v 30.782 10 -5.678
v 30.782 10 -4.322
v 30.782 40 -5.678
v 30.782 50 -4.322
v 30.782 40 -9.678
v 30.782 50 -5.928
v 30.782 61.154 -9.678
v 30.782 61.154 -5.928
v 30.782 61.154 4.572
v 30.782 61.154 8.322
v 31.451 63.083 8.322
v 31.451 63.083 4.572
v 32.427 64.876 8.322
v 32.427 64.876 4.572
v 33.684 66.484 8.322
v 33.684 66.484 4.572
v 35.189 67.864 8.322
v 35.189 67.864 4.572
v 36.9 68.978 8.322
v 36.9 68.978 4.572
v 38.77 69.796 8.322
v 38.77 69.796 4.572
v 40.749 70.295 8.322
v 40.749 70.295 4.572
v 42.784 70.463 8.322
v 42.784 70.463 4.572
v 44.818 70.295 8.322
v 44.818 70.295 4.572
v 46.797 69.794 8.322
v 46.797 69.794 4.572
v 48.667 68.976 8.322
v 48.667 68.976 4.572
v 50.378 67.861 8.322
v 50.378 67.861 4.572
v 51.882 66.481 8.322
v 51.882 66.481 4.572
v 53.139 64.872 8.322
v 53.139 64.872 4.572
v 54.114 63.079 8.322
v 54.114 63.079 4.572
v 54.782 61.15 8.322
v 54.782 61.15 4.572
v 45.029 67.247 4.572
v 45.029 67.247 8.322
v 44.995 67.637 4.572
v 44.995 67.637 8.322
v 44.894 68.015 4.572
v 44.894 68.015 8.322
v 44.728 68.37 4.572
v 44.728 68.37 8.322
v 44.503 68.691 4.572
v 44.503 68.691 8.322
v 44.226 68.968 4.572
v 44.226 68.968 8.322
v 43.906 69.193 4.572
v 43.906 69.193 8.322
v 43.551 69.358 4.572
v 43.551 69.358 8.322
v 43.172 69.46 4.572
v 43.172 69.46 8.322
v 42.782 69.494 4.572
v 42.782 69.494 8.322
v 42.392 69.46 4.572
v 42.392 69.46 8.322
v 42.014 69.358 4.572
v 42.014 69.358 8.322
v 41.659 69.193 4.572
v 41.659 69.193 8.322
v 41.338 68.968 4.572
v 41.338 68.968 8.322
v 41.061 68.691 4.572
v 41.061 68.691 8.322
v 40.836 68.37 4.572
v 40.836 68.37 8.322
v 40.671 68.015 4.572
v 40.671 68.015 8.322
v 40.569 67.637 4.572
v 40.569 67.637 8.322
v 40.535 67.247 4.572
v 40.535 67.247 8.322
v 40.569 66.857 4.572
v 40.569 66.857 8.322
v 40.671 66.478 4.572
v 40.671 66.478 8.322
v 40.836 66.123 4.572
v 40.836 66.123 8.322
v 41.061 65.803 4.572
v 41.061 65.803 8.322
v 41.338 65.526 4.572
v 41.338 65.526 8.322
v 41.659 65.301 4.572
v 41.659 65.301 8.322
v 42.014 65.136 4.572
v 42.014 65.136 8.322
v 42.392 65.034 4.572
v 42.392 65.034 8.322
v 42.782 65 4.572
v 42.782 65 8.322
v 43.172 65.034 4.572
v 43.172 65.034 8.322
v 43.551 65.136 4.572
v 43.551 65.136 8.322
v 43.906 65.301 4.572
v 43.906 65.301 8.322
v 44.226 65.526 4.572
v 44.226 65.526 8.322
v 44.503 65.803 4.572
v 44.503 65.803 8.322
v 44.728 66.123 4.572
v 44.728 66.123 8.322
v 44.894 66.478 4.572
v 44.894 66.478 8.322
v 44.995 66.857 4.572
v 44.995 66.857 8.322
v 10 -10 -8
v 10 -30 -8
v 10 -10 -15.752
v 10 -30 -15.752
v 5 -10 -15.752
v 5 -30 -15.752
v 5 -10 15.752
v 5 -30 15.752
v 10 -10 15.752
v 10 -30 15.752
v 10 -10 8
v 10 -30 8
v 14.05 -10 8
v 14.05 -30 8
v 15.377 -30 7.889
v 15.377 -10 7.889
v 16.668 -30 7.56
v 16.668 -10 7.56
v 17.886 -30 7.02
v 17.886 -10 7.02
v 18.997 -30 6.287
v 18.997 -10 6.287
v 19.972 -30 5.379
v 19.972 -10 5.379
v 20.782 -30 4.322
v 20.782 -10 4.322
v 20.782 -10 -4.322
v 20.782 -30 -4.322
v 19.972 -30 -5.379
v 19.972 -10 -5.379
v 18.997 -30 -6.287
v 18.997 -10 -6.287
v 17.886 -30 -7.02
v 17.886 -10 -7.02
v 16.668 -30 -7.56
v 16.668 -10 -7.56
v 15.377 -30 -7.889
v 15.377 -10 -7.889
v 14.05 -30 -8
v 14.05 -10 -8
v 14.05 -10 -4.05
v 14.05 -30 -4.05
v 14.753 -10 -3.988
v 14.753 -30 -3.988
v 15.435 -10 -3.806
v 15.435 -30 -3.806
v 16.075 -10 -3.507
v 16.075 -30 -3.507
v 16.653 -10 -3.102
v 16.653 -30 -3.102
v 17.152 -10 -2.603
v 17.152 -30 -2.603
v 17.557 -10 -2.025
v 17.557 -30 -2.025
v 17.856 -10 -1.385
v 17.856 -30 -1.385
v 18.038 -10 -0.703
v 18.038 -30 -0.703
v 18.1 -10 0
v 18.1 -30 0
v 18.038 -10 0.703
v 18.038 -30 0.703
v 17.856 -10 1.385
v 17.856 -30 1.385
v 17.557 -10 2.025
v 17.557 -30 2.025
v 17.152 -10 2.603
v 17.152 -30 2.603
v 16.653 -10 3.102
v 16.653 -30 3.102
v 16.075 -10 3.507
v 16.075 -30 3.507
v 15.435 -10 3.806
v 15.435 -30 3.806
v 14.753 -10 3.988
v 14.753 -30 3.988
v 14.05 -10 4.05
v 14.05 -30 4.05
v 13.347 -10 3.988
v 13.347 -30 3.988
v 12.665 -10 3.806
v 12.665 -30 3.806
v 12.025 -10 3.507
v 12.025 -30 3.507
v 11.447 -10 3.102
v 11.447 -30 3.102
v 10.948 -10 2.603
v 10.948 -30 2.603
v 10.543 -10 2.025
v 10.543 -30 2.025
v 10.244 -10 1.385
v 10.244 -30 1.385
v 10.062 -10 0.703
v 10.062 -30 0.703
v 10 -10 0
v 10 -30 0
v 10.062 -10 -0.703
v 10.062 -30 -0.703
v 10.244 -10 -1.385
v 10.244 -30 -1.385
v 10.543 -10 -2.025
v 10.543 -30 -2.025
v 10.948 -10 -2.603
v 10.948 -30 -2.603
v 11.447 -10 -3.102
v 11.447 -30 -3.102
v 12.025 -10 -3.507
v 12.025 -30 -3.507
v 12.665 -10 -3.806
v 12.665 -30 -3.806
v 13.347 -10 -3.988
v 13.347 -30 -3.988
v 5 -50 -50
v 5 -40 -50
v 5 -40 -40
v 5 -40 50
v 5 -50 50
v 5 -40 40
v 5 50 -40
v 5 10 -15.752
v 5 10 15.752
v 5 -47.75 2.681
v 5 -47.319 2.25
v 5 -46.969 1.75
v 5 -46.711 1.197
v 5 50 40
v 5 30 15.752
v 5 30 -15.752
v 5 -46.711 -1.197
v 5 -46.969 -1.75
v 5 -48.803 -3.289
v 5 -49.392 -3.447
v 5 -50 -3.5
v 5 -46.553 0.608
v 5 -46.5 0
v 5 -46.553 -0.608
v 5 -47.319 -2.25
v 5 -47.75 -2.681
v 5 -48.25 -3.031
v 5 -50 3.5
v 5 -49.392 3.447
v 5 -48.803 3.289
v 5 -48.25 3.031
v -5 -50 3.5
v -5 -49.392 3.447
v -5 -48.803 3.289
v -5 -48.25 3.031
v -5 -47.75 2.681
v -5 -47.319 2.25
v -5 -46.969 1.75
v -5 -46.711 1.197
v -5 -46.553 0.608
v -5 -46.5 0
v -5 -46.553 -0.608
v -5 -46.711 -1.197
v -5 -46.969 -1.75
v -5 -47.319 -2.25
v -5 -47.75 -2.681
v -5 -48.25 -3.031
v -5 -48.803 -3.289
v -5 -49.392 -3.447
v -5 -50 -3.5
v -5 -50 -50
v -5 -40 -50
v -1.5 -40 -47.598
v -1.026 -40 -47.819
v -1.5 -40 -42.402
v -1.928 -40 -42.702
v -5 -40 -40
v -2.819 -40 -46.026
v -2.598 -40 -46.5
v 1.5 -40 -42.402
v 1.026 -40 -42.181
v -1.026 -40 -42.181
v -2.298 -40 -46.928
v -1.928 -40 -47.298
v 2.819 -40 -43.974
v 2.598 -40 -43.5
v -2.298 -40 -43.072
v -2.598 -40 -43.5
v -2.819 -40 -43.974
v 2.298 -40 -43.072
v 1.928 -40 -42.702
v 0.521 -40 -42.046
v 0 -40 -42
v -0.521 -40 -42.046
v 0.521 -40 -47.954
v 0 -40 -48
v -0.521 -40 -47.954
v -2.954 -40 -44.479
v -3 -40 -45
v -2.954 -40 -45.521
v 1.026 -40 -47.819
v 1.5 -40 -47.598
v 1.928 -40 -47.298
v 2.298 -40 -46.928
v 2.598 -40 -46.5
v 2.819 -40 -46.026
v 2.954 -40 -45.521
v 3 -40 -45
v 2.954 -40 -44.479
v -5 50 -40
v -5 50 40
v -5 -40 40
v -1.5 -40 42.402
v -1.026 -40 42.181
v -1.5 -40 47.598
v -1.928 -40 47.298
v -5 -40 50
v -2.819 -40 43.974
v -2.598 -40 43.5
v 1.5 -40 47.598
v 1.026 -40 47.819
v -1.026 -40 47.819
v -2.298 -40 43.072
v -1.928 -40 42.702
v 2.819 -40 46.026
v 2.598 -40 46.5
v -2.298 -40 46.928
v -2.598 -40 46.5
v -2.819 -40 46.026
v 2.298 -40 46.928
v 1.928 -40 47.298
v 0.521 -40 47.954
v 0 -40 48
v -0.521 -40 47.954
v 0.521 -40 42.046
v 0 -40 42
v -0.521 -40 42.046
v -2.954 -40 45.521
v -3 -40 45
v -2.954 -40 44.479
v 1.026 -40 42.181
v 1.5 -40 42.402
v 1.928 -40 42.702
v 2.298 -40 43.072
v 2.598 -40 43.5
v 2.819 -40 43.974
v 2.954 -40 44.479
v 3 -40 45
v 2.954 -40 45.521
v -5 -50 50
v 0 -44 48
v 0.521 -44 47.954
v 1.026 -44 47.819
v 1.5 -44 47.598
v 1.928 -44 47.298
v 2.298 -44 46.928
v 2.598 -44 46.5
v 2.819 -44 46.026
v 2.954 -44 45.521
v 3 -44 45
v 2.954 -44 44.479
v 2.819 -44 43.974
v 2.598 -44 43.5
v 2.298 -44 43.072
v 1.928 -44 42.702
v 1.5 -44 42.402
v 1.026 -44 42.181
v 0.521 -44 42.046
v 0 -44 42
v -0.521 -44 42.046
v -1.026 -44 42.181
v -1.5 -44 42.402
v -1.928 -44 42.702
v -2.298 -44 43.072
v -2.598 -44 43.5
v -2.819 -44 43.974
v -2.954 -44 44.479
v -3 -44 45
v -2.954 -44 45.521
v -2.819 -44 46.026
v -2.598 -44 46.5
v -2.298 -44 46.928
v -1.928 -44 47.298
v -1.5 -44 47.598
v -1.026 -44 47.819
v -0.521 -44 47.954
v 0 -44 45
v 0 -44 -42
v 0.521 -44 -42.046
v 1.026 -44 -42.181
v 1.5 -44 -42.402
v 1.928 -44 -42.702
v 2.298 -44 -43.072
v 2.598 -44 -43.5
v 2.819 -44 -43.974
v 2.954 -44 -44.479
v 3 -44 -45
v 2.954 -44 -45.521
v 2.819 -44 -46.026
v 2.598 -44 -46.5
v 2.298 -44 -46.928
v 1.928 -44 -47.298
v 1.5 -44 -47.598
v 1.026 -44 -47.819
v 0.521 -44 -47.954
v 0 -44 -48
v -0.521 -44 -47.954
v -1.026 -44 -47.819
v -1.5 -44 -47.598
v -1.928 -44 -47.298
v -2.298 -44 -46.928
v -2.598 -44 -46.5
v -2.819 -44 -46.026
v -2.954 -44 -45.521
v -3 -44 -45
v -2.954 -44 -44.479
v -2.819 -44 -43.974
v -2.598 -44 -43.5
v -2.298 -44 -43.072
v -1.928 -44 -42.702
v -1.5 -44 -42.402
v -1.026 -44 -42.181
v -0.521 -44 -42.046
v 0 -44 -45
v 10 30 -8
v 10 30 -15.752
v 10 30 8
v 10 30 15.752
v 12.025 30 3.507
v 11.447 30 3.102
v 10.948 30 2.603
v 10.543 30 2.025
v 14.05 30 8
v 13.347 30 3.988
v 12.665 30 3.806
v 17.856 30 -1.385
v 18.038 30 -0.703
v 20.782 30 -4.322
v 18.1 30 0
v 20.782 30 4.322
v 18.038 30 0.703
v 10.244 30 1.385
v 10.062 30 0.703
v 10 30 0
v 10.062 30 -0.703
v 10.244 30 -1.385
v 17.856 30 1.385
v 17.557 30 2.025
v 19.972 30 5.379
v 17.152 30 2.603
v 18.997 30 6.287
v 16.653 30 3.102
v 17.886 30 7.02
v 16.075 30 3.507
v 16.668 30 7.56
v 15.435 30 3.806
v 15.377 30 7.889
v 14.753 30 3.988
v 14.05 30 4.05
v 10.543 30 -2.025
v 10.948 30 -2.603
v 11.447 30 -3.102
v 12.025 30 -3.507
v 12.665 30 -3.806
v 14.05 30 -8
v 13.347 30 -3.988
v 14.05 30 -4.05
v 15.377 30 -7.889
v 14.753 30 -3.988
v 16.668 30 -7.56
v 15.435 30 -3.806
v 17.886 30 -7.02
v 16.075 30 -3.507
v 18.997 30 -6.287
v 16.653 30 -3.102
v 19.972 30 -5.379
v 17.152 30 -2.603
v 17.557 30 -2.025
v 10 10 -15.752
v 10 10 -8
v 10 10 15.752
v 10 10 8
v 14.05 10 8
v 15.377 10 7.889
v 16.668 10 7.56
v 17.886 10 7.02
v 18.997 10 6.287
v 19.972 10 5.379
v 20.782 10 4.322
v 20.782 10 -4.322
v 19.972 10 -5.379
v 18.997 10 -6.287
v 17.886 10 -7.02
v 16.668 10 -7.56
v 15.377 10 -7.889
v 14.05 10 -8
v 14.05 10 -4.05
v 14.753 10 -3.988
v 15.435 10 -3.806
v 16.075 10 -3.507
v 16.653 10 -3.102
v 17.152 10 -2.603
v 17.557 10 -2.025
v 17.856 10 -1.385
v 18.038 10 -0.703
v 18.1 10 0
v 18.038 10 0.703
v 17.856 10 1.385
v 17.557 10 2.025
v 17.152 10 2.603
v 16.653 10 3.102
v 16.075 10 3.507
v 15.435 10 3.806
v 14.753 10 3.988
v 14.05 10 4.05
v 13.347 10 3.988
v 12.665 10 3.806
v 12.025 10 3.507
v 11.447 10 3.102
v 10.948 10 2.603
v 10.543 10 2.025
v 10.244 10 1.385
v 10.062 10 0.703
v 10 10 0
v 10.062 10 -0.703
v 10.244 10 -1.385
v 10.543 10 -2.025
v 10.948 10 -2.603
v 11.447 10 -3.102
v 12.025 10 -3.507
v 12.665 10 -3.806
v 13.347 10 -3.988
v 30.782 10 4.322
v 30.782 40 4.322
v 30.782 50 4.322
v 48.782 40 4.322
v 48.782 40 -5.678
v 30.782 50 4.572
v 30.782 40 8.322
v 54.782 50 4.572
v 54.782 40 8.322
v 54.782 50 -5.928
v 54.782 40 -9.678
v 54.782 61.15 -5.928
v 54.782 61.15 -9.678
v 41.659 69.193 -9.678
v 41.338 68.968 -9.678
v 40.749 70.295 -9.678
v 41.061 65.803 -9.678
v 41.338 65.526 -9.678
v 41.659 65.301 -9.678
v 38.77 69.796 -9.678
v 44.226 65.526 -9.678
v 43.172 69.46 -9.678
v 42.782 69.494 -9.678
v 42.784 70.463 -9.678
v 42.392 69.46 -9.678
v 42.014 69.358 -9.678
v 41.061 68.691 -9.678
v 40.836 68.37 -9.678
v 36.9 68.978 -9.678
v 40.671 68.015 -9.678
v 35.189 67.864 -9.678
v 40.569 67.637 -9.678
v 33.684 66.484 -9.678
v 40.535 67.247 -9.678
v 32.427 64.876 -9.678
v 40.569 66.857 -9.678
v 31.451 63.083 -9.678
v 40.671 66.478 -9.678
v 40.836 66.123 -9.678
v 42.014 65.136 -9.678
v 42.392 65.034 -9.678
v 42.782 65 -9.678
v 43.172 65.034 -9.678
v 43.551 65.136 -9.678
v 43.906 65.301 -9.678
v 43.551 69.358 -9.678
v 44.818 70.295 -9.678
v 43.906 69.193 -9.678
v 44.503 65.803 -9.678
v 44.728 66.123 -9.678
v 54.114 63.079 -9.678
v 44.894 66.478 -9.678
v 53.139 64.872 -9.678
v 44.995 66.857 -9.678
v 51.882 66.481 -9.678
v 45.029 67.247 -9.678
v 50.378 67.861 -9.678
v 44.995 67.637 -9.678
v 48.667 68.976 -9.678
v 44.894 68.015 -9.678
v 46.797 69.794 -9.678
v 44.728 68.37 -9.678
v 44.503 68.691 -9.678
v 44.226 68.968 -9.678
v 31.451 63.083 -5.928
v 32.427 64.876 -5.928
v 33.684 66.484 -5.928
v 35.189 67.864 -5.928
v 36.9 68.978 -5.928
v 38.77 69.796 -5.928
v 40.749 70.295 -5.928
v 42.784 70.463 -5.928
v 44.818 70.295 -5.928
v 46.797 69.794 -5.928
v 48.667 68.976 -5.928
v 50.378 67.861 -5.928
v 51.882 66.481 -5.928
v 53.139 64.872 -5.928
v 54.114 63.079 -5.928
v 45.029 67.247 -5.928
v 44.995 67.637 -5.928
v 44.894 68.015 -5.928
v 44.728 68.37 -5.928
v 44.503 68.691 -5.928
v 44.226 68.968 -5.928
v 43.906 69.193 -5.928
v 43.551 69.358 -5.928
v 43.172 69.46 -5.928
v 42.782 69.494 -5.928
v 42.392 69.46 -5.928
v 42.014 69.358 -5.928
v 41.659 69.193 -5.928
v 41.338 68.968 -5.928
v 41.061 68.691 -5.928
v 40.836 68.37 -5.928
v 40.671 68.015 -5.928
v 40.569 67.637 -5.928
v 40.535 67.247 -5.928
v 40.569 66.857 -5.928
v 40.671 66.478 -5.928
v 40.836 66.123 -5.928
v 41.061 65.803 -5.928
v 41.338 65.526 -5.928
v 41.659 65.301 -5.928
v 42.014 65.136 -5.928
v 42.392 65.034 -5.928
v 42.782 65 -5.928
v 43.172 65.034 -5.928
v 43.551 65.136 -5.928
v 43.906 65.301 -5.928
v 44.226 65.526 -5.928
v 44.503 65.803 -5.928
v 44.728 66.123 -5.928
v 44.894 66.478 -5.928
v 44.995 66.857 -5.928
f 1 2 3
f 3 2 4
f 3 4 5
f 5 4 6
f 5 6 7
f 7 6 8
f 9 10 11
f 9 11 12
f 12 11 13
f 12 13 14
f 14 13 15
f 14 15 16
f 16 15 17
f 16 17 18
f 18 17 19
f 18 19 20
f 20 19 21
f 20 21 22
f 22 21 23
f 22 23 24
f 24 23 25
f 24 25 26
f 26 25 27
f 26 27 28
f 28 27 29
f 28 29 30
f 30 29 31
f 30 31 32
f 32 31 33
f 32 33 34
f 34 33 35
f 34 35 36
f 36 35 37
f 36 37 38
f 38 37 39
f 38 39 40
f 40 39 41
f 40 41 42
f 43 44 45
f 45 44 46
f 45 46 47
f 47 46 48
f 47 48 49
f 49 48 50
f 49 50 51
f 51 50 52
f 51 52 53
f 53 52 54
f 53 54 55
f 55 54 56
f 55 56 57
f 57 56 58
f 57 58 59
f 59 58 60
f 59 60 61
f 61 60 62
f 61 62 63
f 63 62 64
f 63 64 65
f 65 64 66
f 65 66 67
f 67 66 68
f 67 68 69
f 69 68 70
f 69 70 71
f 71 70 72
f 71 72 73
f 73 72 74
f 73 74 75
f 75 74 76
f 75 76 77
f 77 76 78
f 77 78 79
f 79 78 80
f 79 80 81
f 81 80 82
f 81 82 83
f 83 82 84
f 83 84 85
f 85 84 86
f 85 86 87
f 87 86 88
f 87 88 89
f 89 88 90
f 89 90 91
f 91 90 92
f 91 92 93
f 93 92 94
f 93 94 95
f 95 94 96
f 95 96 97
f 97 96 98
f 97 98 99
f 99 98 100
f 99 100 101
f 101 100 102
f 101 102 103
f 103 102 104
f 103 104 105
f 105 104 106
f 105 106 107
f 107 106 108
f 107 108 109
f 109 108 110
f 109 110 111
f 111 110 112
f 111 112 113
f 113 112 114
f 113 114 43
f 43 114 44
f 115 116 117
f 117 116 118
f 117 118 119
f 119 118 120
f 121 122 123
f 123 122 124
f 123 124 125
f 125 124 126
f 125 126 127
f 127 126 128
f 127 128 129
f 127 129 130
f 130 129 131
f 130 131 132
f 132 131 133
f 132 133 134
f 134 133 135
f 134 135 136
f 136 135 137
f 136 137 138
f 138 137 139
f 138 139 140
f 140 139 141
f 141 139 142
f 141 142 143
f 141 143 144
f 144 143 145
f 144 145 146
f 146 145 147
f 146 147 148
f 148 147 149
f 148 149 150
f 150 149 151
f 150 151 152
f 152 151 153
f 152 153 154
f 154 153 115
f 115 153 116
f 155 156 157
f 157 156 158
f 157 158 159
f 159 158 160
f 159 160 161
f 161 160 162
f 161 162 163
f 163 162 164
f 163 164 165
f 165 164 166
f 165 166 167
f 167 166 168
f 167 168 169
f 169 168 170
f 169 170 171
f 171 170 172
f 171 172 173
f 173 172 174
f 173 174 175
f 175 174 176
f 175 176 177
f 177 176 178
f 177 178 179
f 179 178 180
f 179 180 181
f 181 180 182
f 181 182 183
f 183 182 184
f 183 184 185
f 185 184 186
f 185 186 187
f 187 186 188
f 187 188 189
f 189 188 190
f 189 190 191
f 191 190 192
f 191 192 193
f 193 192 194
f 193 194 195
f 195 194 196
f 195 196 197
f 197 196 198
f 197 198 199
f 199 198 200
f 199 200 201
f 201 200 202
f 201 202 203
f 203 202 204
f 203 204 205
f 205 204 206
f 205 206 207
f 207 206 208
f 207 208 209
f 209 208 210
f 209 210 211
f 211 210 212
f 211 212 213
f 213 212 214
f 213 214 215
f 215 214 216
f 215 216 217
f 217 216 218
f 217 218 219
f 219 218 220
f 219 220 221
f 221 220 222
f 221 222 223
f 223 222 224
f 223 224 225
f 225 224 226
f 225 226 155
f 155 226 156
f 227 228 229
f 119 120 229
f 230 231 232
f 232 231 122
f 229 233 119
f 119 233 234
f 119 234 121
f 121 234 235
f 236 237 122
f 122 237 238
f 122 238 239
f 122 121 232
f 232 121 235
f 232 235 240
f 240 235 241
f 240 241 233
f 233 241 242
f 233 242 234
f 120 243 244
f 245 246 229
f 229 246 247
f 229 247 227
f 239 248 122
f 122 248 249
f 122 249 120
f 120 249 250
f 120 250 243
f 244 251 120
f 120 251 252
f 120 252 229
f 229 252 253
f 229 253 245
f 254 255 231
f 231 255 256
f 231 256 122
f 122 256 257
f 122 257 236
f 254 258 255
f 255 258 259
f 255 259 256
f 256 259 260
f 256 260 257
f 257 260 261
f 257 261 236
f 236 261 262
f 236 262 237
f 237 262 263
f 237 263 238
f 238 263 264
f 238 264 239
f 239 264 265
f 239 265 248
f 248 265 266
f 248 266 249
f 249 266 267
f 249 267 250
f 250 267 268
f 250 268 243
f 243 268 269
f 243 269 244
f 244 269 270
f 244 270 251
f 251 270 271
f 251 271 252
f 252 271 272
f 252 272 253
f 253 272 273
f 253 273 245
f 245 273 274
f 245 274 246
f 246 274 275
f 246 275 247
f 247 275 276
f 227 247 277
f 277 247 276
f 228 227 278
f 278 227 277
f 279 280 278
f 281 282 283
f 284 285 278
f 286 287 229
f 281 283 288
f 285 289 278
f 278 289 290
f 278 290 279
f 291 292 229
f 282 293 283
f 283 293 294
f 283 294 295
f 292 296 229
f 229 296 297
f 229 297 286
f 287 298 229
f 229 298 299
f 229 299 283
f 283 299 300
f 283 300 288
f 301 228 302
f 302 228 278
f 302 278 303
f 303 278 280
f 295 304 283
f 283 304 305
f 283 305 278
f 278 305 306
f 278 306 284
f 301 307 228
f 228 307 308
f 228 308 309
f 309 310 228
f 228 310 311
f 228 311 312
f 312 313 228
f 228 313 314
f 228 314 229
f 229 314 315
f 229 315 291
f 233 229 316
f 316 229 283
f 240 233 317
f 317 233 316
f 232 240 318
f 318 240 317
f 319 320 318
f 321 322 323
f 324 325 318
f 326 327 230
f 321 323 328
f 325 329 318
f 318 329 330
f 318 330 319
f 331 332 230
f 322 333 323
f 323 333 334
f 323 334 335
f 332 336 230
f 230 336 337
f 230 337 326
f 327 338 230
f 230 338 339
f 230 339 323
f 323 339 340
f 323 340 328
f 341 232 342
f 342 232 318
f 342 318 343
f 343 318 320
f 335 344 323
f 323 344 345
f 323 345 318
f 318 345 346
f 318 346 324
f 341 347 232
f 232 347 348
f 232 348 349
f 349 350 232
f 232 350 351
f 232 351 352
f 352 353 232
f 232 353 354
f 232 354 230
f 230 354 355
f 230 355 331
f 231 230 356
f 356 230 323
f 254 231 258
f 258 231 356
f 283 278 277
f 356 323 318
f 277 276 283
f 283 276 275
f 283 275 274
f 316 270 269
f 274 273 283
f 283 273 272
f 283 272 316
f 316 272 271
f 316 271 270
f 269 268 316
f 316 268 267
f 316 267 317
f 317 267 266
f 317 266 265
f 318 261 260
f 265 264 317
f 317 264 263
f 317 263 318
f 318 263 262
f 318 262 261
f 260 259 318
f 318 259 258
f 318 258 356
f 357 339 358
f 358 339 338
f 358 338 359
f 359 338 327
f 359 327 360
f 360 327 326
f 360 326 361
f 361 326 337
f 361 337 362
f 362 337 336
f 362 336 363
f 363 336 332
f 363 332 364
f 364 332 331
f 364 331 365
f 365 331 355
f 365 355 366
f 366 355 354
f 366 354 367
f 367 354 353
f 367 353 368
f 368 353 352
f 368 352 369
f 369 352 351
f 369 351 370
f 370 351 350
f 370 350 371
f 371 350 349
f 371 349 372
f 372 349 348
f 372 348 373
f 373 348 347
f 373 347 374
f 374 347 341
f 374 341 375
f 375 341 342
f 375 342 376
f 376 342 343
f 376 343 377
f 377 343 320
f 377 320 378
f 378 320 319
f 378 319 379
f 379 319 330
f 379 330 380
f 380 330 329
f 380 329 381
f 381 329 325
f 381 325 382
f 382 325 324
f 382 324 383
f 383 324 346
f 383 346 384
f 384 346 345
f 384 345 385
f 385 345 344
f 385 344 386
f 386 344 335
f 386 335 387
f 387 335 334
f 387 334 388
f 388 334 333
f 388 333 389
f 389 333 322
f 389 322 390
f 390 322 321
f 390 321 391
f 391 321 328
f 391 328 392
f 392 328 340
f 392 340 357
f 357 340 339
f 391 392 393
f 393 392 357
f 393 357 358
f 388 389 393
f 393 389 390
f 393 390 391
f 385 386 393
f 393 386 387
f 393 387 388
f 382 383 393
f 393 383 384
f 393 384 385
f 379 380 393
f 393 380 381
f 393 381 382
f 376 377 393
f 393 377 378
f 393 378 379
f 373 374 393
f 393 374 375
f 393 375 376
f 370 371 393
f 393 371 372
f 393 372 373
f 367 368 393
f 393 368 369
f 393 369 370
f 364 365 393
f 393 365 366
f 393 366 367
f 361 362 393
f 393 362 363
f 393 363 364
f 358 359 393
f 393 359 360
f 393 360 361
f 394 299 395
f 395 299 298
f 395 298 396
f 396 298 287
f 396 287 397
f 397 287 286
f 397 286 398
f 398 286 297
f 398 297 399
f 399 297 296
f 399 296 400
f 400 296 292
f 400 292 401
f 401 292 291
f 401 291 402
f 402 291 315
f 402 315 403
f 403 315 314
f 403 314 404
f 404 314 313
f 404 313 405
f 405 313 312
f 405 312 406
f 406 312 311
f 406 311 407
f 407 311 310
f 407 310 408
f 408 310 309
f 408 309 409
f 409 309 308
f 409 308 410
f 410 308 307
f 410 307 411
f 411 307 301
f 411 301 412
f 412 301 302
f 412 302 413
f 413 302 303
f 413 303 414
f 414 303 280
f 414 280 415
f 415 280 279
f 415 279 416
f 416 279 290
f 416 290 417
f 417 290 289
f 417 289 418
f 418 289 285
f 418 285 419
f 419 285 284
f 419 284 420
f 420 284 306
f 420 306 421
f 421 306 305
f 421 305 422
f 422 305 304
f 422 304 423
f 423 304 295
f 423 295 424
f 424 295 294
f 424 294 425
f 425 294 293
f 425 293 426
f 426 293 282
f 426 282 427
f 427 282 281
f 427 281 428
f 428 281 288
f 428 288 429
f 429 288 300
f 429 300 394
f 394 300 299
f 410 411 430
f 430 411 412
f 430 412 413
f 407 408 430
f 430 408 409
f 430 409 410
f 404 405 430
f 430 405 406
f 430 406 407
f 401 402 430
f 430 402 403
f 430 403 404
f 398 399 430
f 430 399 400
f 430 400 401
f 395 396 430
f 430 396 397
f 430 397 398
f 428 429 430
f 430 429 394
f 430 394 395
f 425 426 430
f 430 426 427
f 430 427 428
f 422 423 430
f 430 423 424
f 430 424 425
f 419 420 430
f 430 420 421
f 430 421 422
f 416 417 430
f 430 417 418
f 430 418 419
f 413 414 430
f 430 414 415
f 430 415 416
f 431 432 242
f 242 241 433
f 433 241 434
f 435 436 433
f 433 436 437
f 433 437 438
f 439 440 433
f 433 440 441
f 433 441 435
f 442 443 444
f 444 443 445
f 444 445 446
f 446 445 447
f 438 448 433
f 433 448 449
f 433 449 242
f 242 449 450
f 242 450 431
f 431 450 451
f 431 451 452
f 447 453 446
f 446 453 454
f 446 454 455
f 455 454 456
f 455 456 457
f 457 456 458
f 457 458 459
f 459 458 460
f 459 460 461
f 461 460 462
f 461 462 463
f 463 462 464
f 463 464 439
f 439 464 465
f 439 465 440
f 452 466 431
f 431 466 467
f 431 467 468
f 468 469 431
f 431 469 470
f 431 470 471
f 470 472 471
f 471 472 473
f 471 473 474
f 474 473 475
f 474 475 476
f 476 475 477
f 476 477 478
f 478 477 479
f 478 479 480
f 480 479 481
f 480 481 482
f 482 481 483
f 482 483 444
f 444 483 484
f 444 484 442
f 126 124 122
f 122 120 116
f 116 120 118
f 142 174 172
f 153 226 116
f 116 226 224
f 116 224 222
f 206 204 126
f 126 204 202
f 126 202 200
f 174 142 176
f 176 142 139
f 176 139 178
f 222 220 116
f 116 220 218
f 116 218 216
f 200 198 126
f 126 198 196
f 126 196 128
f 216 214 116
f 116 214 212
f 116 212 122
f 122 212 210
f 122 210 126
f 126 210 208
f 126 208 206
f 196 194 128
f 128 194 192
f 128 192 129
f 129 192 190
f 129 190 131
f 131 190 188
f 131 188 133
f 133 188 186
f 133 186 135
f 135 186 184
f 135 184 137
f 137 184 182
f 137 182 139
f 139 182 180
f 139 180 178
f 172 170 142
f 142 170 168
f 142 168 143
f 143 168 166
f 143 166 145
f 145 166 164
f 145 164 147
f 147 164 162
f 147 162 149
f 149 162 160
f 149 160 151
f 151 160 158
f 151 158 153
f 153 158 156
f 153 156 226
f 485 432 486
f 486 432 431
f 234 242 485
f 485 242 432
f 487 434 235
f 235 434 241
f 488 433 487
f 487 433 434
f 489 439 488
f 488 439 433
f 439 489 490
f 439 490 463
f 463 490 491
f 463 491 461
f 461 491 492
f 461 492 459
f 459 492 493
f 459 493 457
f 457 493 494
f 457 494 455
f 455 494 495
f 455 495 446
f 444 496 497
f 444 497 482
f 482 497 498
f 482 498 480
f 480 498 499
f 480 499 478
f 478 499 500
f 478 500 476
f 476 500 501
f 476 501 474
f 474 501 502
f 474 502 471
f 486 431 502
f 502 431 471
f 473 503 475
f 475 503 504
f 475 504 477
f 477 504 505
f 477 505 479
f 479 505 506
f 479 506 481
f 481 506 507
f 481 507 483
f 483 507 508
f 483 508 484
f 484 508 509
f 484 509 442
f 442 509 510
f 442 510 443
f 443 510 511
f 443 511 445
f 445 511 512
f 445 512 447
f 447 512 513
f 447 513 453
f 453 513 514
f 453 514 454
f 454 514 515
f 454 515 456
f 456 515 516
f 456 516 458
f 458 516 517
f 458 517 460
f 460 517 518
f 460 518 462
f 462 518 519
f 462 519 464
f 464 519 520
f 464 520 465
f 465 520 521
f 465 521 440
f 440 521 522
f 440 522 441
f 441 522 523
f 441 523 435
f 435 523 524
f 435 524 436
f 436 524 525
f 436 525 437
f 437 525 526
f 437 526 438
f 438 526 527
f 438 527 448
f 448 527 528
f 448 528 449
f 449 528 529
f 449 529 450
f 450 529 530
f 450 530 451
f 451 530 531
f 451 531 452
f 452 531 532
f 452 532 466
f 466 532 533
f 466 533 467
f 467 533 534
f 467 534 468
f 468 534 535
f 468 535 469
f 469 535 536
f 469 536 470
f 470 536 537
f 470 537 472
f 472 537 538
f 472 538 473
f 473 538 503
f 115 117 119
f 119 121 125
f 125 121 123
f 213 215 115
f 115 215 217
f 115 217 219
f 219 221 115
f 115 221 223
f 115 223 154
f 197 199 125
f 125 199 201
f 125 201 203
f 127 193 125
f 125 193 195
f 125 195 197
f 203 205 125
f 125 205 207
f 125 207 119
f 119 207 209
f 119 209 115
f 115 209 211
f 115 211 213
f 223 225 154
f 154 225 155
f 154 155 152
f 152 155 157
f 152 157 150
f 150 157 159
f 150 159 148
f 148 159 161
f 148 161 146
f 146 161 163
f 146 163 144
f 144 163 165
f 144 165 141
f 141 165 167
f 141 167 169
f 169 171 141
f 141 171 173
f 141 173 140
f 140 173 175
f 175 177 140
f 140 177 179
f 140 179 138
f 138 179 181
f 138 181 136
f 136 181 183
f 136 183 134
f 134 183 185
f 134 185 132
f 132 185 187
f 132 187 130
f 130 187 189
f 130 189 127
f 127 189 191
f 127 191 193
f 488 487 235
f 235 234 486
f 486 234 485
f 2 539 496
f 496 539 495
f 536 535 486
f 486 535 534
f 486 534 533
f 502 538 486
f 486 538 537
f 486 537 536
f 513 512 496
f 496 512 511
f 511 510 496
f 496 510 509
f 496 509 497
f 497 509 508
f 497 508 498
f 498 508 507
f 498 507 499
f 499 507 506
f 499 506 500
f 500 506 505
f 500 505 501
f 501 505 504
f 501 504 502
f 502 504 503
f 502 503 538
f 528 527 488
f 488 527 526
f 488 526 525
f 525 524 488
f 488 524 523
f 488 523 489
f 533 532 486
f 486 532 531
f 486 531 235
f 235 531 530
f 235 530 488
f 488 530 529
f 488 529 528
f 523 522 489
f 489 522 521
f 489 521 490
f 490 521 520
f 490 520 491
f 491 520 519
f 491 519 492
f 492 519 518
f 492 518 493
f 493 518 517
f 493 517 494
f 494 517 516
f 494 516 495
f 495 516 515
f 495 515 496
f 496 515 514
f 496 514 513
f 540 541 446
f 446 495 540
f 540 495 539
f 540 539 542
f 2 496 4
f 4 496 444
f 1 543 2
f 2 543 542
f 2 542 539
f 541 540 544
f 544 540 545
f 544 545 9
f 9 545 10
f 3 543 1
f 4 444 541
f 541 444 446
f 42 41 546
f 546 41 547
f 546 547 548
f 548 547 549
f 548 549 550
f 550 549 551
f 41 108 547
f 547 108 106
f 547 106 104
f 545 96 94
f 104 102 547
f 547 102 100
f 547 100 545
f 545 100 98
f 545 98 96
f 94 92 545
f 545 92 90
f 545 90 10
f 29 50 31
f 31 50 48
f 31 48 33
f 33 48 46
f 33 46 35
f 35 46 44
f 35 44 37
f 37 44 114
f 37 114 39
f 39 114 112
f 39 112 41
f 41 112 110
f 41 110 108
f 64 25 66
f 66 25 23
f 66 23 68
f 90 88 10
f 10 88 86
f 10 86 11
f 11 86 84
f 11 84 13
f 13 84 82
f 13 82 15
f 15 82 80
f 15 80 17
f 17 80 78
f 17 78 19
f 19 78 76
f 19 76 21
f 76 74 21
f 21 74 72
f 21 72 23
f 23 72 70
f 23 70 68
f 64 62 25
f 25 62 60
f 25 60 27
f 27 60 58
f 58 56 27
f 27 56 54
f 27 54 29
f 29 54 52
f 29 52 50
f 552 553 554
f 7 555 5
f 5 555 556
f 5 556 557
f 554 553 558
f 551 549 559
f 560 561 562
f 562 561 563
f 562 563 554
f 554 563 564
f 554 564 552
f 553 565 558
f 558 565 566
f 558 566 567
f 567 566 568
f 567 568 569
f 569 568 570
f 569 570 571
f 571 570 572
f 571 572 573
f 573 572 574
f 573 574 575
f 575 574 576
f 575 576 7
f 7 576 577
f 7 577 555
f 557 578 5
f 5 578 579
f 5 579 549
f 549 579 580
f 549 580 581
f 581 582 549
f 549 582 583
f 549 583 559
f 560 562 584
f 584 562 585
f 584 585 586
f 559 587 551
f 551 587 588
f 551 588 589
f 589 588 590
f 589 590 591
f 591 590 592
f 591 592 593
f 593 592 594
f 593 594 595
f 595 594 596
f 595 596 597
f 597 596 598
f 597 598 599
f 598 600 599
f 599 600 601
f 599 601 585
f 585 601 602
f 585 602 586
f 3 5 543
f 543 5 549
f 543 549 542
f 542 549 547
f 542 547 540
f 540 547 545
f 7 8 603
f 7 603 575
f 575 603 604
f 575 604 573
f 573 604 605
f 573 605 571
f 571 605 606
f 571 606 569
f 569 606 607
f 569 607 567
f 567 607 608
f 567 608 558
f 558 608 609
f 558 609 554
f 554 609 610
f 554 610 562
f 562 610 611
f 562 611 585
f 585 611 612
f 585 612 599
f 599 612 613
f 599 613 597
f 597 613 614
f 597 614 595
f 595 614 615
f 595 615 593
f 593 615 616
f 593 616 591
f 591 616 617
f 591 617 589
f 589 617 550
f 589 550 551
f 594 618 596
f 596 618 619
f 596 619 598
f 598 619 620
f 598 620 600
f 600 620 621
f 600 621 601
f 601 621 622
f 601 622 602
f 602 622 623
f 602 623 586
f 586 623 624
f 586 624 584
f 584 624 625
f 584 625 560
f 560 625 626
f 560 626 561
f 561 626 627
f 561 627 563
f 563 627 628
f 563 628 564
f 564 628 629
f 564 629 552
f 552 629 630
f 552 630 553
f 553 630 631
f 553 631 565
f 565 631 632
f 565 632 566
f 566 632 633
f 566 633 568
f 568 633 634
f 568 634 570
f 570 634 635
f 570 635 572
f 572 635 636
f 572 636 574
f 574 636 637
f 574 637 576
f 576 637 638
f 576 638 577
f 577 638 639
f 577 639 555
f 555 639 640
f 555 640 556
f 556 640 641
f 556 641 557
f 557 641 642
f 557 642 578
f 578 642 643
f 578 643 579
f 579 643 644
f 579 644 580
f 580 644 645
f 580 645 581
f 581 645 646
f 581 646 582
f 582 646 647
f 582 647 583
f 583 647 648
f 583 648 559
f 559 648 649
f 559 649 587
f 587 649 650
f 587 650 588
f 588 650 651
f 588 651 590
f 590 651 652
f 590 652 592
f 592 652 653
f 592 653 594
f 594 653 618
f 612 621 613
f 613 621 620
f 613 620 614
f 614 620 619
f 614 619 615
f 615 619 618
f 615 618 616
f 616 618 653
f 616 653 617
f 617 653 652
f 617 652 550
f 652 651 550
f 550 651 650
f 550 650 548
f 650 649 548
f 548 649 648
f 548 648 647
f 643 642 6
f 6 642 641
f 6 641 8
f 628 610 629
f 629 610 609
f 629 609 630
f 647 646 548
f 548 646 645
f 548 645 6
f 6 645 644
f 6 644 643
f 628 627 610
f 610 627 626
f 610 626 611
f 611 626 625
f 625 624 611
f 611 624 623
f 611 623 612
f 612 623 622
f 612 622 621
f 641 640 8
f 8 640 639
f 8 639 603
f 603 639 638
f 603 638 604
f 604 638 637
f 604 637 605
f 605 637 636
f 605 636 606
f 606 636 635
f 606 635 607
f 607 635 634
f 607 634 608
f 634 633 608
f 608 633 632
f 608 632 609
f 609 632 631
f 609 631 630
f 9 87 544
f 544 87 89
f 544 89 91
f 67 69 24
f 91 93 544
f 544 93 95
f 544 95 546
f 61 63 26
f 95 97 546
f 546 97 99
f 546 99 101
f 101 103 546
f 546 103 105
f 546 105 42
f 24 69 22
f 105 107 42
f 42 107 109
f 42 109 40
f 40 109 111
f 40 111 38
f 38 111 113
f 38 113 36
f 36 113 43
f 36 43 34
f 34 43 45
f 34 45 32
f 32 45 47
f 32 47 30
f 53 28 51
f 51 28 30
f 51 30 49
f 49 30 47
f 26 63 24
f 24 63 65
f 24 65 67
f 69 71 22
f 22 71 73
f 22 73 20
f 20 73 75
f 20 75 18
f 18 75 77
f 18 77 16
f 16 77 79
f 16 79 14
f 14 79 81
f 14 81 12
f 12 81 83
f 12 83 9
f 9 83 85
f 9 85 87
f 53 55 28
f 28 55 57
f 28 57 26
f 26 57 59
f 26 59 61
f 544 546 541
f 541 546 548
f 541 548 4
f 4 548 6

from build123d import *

# Parameters (mm, degrees)
SKETCH1_W               = 10
SKETCH1_H               = 10
BOSS_EXTRUDE1_DEPTH     = 5
SKETCH4_R               = 3
CUT_EXTRUDE1_DEPTH      = 4
SKETCH5_R               = 4.05
BOSS_EXTRUDE2_DEPTH     = 30
CUT_EXTRUDE2_DEPTH      = 106.032848815
CUT_EXTRUDE2_DEPTH_BACK = 106.032848815
SKETCH6_W               = 26.365617629
SKETCH6_H               = 20
SKETCH8_W               = 10
SKETCH8_H               = 8.643528748
BOSS_EXTRUDE3_DEPTH     = 40
SKETCH9_R               = 2.5
BOSS_EXTRUDE4_DEPTH     = 10
CUT_EXTRUDE3_DEPTH      = 99.974452188
CUT_EXTRUDE3_DEPTH_BACK = 99.974452188
CUT_EXTRUDE5_DEPTH      = 99.974452188
CUT_EXTRUDE5_DEPTH_BACK = 99.974452188
SKETCH13_W              = 27.262735852
SKETCH13_H              = 14.70463532
SKETCH14_W              = 24
SKETCH14_H              = 18
BOSS_EXTRUDE5_DEPTH     = 10
SKETCH15_R              = 2.246907778
BOSS_EXTRUDE6_DEPTH     = 9
SKETCH16_W              = 26.867537366
SKETCH16_H              = 22.487326792
CUT_EXTRUDE6_DEPTH      = 5.25


with BuildPart() as part:
    # Sketch1 → Boss-Extrude1 (new, symmetric)
    with BuildSketch(Plane(origin=(0, 0, 0), x_dir=(0, 0, -1), z_dir=(1, 0, 0))):
        with BuildLine():
            Line((-40, -40), (-40, -50))
            Line((-40, -50), (-3.5, -50))
            ThreePointArc((-3.5, -50), (0, -46.5), (3.5, -50))
            Line((3.5, -50), (40, -50))
            Line((40, -50), (40, -40))
            Line((40, -40), (40, 50))
            Line((40, 50), (-40, 50))
            Line((-40, 50), (-40, -40))
        make_face()
        with Locations((-45, -45)):
            Rectangle(SKETCH1_W, SKETCH1_H)
        with Locations((45, -45)):
            Rectangle(SKETCH1_W, SKETCH1_H)
    extrude(amount=BOSS_EXTRUDE1_DEPTH, both=True)

    # Sketch4 → Cut-Extrude1 (cut)
    with BuildSketch(Plane(origin=(0, -40, 0), x_dir=(1, 0, 0), z_dir=(0, 1, 0))):
        with Locations(Location((0, -45, 0), (0, 0, 270))):
            Circle(SKETCH4_R)
    cut_extrude1 = extrude(amount=-CUT_EXTRUDE1_DEPTH, mode=Mode.SUBTRACT)

    # Mirror1: Cut-Extrude1 across plane
    add(cut_extrude1.mirror(Plane.XY), mode=Mode.SUBTRACT)

    # Sketch5 → Boss-Extrude2 (add, symmetric)
    with BuildSketch(Plane(origin=(0, 0, 0), x_dir=(1, 0, 0), z_dir=(0, 1, 0))):
        with BuildLine():
            Line((5, 15.751709746), (5, -15.751709746))
            Line((5, -15.751709746), (10, -15.751709746))
            Line((10, -15.751709746), (10, -8))
            Line((10, -8), (14.05, -8))
            ThreePointArc((14.05, -8), (17.885745365, -7.020474165), (20.782187809, -4.321764374))
            Line((20.782187809, -4.321764374), (20.782187809, 4.321764374))
            ThreePointArc((20.782187809, 4.321764374), (17.885745365, 7.020474165), (14.05, 8))
            Line((14.05, 8), (10, 8))
            Line((10, 8), (10, 15.751709746))
            Line((10, 15.751709746), (5, 15.751709746))
        make_face()
        with Locations(Location((14.05, 0, 0), (0, 0, 270))):
            Circle(SKETCH5_R, mode=Mode.SUBTRACT)
    extrude(amount=BOSS_EXTRUDE2_DEPTH, both=True)

    # Sketch6 → Cut-Extrude2 (cut, two sides: drawn at the far end of the back side and taken through both)
    with BuildSketch(Plane.XY.offset(40).offset(-CUT_EXTRUDE2_DEPTH_BACK)):
        with Locations((18.182808814, 0)):
            Rectangle(SKETCH6_W, SKETCH6_H)
    extrude(amount=CUT_EXTRUDE2_DEPTH + CUT_EXTRUDE2_DEPTH_BACK, mode=Mode.SUBTRACT)

    # Sketch8 → Boss-Extrude3 (add)
    with BuildSketch(Plane.XZ.offset(-10)):
        with Locations((25.782187809, 0)):
            Rectangle(SKETCH8_W, SKETCH8_H)
    extrude(amount=-BOSS_EXTRUDE3_DEPTH)

    # Sketch9 → Boss-Extrude4 (add)
    with BuildSketch(Plane.XY.offset(4.321764374)):
        with BuildLine():
            Line((30.782187809, 10), (54.782187809, 50))
            ThreePointArc((54.782187809, 50), (42.782187809, 62), (30.782187809, 50))
            Line((30.782187809, 50), (30.782187809, 10))
        make_face()
        with Locations((42.782187809, 57.067437711)):
            Circle(SKETCH9_R, mode=Mode.SUBTRACT)
    extrude(amount=-BOSS_EXTRUDE4_DEPTH)

    # Sketch10 → Cut-Extrude3 (cut, two sides: drawn at the far end of the back side and taken through both)
    with BuildSketch(Plane.XY.offset(4.321764374).offset(-CUT_EXTRUDE3_DEPTH_BACK)):
        Polygon((30.782187809, 50), (20.782187809, 30), (20.782187809, 50), align=None)
    extrude(amount=CUT_EXTRUDE3_DEPTH + CUT_EXTRUDE3_DEPTH_BACK, mode=Mode.SUBTRACT)

    # Sketch13 → Cut-Extrude5 (cut, two sides: drawn at the far end of the back side and taken through both)
    with BuildSketch(Plane.XY.offset(4.321764374).offset(-CUT_EXTRUDE5_DEPTH_BACK)):
        with Locations((44.413555735, 57.35231766)):
            Rectangle(SKETCH13_W, SKETCH13_H)
    extrude(amount=CUT_EXTRUDE5_DEPTH + CUT_EXTRUDE5_DEPTH_BACK, mode=Mode.SUBTRACT)

    # Sketch14 → Boss-Extrude5 (add)
    with BuildSketch(Plane(origin=(0, 50, 0), x_dir=(1, 0, 0), z_dir=(0, 1, 0))):
        with Locations((42.782187809, 0.678235626)):
            Rectangle(SKETCH14_W, SKETCH14_H)
    extrude(amount=-BOSS_EXTRUDE5_DEPTH)

    # Sketch15 → Boss-Extrude6 (add, symmetric)
    with BuildSketch(Plane.XY.offset(-0.678235626)):
        with BuildLine():
            Line((30.782187809, 50), (54.782187809, 50))
            Line((54.782187809, 50), (54.782187809, 61.15))
            ThreePointArc((54.782187809, 61.15), (42.783764567, 70.463225851), (30.782187809, 61.15406416))
            Line((30.782187809, 61.15406416), (30.782187809, 50))
        make_face()
        with Locations((42.782187809, 67.246907778)):
            Circle(SKETCH15_R, mode=Mode.SUBTRACT)
    extrude(amount=BOSS_EXTRUDE6_DEPTH, both=True)

    # Sketch16 → Cut-Extrude6 (cut, symmetric)
    with BuildSketch(Plane.XY.offset(-0.678235626)):
        with Locations((44.215956492, 61.243663396)):
            Rectangle(SKETCH16_W, SKETCH16_H)
    extrude(amount=CUT_EXTRUDE6_DEPTH, both=True, mode=Mode.SUBTRACT)


solid = part.part
